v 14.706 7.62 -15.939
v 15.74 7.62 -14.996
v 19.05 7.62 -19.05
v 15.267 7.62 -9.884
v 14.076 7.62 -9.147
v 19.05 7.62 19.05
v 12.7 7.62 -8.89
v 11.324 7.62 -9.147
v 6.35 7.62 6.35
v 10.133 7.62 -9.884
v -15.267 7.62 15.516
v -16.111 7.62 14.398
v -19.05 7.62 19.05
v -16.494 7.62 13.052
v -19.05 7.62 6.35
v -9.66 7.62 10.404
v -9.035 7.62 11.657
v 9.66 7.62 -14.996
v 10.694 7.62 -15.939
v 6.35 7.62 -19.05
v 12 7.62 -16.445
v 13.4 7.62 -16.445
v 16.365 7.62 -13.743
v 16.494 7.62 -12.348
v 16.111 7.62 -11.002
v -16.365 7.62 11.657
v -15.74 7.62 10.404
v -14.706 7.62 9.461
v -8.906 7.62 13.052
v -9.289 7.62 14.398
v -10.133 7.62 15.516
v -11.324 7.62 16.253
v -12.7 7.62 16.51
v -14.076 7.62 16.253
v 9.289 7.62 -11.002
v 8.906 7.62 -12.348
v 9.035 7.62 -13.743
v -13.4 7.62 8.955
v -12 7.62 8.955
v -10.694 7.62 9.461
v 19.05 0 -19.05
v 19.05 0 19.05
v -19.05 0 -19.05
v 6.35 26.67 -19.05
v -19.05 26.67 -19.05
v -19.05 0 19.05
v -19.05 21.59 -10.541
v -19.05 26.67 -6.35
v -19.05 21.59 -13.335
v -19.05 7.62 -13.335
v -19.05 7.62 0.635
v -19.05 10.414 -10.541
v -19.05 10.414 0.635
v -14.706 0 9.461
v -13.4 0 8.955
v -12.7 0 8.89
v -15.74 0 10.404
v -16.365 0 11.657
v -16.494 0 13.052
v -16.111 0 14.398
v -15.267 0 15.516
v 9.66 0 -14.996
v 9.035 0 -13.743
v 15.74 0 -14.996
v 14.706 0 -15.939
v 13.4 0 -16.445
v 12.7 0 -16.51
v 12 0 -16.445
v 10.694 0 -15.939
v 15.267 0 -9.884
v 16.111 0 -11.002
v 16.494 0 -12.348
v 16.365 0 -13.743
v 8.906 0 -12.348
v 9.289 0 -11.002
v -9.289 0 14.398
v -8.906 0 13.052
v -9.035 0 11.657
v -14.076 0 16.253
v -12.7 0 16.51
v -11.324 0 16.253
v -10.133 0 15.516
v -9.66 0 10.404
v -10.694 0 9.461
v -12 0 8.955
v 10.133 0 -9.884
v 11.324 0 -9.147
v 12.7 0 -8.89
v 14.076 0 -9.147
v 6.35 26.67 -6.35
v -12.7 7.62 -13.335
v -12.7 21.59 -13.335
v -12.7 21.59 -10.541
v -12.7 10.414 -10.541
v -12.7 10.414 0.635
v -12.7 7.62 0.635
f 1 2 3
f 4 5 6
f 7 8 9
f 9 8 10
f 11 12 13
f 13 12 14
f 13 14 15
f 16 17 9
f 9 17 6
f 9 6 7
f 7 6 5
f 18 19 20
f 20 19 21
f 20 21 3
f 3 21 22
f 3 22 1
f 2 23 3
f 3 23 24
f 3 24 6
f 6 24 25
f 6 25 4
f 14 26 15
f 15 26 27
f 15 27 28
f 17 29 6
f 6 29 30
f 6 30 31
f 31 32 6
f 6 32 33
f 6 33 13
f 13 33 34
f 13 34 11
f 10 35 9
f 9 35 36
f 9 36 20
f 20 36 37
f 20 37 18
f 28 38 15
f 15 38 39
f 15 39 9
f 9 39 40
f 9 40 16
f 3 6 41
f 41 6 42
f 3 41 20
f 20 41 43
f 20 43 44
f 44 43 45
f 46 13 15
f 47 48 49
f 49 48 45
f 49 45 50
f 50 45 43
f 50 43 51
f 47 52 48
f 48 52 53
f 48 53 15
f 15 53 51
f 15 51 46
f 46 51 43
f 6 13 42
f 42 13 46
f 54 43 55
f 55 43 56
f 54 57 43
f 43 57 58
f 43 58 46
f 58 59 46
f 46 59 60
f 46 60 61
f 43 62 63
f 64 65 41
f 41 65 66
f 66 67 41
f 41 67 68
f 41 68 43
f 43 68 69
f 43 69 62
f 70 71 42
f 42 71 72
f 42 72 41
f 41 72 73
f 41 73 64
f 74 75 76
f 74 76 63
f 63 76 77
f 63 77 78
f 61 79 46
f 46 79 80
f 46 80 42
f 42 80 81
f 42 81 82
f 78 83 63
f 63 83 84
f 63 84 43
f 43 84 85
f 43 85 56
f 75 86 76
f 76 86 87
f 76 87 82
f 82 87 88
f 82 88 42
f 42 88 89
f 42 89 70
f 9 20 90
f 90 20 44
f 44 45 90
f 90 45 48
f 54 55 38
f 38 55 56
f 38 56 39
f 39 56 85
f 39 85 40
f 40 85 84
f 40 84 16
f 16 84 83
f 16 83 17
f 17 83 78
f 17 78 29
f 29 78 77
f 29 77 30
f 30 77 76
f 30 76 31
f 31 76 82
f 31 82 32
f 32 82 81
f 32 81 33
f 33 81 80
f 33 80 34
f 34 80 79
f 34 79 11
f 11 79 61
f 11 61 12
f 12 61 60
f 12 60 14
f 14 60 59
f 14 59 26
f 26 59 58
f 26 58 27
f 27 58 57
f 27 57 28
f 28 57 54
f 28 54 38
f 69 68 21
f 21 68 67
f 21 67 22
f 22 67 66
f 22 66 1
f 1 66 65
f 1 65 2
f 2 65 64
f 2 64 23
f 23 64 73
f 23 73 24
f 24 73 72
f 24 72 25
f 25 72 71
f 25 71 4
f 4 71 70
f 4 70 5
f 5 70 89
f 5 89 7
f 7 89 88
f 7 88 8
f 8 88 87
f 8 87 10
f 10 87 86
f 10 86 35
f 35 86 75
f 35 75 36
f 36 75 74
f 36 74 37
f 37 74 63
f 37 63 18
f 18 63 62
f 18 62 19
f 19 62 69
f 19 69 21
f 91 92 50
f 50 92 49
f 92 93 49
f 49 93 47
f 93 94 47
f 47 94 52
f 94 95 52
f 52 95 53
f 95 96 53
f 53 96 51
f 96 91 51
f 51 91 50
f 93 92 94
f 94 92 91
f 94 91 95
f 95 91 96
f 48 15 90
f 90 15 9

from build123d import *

# Parameters (mm, degrees)
SKETCH1_W           = 38.1
SKETCH1_H           = 38.1
BOSS_EXTRUDE1_DEPTH = 7.62
SKETCH2_W           = 25.4
SKETCH2_H           = 25.4
BOSS_EXTRUDE2_DEPTH = 19.05
CUT_EXTRUDE1_REACH  = 9.62
SKETCH3_R           = 3.81
CUT_EXTRUDE2_DEPTH  = 6.35
CUT_EXTRUDE3_REACH  = 40.1


with BuildPart() as part:
    # Sketch1 → Boss-Extrude1 (new body)
    with BuildSketch(Plane(origin=(0, 0, 0), x_dir=(1, 0, 0), z_dir=(0, 1, 0))):
        Rectangle(SKETCH1_W, SKETCH1_H)
    extrude(amount=BOSS_EXTRUDE1_DEPTH)

    # Sketch2 → Boss-Extrude2 (add)
    with BuildSketch(Plane(origin=(0, 7.62, 0), x_dir=(1, 0, 0), z_dir=(0, 1, 0))):
        with Locations((-6.35, 6.35)):
            Rectangle(SKETCH2_W, SKETCH2_H)
    extrude(amount=BOSS_EXTRUDE2_DEPTH)

    # Sketch3 → Cut-Extrude1 (cut, up to next)
    with BuildSketch(Plane(origin=(0, 7.62, 0), x_dir=(1, 0, 0), z_dir=(0, 1, 0)), mode=Mode.PRIVATE) as cut_extrude1_sk1:
        with Locations((12.7, 12.7)):
            Circle(SKETCH3_R)
    cut_extrude1_tool1 = extrude(cut_extrude1_sk1.sketch, amount=-CUT_EXTRUDE1_REACH, mode=Mode.PRIVATE) & part.part
    add(cut_extrude1_tool1.solids().sort_by_distance((12.7, 7.62, -12.7))[0], mode=Mode.SUBTRACT)
    # Sketch3 → Cut-Extrude1 (cut, up to next)
    with BuildSketch(Plane(origin=(0, 7.62, 0), x_dir=(1, 0, 0), z_dir=(0, 1, 0)), mode=Mode.PRIVATE) as cut_extrude1_sk2:
        with Locations((-12.7, -12.7)):
            Circle(SKETCH3_R)
    cut_extrude1_tool2 = extrude(cut_extrude1_sk2.sketch, amount=-CUT_EXTRUDE1_REACH, mode=Mode.PRIVATE) & part.part
    add(cut_extrude1_tool2.solids().sort_by_distance((-12.7, 7.62, 12.7))[0], mode=Mode.SUBTRACT)

    # Sketch4 → Cut-Extrude2 (cut)
    with BuildSketch(Plane.ZY.offset(19.05)):
        Polygon((-13.335, 21.59), (-10.541, 21.59), (-10.541, 10.414), (0.635, 10.414), (0.635, 7.62), (-13.335, 7.62), align=None)
    extrude(amount=-CUT_EXTRUDE2_DEPTH, mode=Mode.SUBTRACT)

    # Sketch5 → Cut-Extrude3 (cut, up to next)
    with BuildSketch(Plane.ZY.offset(19.05), mode=Mode.PRIVATE) as cut_extrude3_sk1:
        Polygon((-6.35, 26.67), (6.35, 7.62), (6.35, 26.67), align=None)
    cut_extrude3_tool1 = extrude(cut_extrude3_sk1.sketch, amount=-CUT_EXTRUDE3_REACH, mode=Mode.PRIVATE) & part.part
    add(cut_extrude3_tool1.solids().sort_by_distance((-19.05, 20.32, 2.116667))[0], mode=Mode.SUBTRACT)


solid = part.part
